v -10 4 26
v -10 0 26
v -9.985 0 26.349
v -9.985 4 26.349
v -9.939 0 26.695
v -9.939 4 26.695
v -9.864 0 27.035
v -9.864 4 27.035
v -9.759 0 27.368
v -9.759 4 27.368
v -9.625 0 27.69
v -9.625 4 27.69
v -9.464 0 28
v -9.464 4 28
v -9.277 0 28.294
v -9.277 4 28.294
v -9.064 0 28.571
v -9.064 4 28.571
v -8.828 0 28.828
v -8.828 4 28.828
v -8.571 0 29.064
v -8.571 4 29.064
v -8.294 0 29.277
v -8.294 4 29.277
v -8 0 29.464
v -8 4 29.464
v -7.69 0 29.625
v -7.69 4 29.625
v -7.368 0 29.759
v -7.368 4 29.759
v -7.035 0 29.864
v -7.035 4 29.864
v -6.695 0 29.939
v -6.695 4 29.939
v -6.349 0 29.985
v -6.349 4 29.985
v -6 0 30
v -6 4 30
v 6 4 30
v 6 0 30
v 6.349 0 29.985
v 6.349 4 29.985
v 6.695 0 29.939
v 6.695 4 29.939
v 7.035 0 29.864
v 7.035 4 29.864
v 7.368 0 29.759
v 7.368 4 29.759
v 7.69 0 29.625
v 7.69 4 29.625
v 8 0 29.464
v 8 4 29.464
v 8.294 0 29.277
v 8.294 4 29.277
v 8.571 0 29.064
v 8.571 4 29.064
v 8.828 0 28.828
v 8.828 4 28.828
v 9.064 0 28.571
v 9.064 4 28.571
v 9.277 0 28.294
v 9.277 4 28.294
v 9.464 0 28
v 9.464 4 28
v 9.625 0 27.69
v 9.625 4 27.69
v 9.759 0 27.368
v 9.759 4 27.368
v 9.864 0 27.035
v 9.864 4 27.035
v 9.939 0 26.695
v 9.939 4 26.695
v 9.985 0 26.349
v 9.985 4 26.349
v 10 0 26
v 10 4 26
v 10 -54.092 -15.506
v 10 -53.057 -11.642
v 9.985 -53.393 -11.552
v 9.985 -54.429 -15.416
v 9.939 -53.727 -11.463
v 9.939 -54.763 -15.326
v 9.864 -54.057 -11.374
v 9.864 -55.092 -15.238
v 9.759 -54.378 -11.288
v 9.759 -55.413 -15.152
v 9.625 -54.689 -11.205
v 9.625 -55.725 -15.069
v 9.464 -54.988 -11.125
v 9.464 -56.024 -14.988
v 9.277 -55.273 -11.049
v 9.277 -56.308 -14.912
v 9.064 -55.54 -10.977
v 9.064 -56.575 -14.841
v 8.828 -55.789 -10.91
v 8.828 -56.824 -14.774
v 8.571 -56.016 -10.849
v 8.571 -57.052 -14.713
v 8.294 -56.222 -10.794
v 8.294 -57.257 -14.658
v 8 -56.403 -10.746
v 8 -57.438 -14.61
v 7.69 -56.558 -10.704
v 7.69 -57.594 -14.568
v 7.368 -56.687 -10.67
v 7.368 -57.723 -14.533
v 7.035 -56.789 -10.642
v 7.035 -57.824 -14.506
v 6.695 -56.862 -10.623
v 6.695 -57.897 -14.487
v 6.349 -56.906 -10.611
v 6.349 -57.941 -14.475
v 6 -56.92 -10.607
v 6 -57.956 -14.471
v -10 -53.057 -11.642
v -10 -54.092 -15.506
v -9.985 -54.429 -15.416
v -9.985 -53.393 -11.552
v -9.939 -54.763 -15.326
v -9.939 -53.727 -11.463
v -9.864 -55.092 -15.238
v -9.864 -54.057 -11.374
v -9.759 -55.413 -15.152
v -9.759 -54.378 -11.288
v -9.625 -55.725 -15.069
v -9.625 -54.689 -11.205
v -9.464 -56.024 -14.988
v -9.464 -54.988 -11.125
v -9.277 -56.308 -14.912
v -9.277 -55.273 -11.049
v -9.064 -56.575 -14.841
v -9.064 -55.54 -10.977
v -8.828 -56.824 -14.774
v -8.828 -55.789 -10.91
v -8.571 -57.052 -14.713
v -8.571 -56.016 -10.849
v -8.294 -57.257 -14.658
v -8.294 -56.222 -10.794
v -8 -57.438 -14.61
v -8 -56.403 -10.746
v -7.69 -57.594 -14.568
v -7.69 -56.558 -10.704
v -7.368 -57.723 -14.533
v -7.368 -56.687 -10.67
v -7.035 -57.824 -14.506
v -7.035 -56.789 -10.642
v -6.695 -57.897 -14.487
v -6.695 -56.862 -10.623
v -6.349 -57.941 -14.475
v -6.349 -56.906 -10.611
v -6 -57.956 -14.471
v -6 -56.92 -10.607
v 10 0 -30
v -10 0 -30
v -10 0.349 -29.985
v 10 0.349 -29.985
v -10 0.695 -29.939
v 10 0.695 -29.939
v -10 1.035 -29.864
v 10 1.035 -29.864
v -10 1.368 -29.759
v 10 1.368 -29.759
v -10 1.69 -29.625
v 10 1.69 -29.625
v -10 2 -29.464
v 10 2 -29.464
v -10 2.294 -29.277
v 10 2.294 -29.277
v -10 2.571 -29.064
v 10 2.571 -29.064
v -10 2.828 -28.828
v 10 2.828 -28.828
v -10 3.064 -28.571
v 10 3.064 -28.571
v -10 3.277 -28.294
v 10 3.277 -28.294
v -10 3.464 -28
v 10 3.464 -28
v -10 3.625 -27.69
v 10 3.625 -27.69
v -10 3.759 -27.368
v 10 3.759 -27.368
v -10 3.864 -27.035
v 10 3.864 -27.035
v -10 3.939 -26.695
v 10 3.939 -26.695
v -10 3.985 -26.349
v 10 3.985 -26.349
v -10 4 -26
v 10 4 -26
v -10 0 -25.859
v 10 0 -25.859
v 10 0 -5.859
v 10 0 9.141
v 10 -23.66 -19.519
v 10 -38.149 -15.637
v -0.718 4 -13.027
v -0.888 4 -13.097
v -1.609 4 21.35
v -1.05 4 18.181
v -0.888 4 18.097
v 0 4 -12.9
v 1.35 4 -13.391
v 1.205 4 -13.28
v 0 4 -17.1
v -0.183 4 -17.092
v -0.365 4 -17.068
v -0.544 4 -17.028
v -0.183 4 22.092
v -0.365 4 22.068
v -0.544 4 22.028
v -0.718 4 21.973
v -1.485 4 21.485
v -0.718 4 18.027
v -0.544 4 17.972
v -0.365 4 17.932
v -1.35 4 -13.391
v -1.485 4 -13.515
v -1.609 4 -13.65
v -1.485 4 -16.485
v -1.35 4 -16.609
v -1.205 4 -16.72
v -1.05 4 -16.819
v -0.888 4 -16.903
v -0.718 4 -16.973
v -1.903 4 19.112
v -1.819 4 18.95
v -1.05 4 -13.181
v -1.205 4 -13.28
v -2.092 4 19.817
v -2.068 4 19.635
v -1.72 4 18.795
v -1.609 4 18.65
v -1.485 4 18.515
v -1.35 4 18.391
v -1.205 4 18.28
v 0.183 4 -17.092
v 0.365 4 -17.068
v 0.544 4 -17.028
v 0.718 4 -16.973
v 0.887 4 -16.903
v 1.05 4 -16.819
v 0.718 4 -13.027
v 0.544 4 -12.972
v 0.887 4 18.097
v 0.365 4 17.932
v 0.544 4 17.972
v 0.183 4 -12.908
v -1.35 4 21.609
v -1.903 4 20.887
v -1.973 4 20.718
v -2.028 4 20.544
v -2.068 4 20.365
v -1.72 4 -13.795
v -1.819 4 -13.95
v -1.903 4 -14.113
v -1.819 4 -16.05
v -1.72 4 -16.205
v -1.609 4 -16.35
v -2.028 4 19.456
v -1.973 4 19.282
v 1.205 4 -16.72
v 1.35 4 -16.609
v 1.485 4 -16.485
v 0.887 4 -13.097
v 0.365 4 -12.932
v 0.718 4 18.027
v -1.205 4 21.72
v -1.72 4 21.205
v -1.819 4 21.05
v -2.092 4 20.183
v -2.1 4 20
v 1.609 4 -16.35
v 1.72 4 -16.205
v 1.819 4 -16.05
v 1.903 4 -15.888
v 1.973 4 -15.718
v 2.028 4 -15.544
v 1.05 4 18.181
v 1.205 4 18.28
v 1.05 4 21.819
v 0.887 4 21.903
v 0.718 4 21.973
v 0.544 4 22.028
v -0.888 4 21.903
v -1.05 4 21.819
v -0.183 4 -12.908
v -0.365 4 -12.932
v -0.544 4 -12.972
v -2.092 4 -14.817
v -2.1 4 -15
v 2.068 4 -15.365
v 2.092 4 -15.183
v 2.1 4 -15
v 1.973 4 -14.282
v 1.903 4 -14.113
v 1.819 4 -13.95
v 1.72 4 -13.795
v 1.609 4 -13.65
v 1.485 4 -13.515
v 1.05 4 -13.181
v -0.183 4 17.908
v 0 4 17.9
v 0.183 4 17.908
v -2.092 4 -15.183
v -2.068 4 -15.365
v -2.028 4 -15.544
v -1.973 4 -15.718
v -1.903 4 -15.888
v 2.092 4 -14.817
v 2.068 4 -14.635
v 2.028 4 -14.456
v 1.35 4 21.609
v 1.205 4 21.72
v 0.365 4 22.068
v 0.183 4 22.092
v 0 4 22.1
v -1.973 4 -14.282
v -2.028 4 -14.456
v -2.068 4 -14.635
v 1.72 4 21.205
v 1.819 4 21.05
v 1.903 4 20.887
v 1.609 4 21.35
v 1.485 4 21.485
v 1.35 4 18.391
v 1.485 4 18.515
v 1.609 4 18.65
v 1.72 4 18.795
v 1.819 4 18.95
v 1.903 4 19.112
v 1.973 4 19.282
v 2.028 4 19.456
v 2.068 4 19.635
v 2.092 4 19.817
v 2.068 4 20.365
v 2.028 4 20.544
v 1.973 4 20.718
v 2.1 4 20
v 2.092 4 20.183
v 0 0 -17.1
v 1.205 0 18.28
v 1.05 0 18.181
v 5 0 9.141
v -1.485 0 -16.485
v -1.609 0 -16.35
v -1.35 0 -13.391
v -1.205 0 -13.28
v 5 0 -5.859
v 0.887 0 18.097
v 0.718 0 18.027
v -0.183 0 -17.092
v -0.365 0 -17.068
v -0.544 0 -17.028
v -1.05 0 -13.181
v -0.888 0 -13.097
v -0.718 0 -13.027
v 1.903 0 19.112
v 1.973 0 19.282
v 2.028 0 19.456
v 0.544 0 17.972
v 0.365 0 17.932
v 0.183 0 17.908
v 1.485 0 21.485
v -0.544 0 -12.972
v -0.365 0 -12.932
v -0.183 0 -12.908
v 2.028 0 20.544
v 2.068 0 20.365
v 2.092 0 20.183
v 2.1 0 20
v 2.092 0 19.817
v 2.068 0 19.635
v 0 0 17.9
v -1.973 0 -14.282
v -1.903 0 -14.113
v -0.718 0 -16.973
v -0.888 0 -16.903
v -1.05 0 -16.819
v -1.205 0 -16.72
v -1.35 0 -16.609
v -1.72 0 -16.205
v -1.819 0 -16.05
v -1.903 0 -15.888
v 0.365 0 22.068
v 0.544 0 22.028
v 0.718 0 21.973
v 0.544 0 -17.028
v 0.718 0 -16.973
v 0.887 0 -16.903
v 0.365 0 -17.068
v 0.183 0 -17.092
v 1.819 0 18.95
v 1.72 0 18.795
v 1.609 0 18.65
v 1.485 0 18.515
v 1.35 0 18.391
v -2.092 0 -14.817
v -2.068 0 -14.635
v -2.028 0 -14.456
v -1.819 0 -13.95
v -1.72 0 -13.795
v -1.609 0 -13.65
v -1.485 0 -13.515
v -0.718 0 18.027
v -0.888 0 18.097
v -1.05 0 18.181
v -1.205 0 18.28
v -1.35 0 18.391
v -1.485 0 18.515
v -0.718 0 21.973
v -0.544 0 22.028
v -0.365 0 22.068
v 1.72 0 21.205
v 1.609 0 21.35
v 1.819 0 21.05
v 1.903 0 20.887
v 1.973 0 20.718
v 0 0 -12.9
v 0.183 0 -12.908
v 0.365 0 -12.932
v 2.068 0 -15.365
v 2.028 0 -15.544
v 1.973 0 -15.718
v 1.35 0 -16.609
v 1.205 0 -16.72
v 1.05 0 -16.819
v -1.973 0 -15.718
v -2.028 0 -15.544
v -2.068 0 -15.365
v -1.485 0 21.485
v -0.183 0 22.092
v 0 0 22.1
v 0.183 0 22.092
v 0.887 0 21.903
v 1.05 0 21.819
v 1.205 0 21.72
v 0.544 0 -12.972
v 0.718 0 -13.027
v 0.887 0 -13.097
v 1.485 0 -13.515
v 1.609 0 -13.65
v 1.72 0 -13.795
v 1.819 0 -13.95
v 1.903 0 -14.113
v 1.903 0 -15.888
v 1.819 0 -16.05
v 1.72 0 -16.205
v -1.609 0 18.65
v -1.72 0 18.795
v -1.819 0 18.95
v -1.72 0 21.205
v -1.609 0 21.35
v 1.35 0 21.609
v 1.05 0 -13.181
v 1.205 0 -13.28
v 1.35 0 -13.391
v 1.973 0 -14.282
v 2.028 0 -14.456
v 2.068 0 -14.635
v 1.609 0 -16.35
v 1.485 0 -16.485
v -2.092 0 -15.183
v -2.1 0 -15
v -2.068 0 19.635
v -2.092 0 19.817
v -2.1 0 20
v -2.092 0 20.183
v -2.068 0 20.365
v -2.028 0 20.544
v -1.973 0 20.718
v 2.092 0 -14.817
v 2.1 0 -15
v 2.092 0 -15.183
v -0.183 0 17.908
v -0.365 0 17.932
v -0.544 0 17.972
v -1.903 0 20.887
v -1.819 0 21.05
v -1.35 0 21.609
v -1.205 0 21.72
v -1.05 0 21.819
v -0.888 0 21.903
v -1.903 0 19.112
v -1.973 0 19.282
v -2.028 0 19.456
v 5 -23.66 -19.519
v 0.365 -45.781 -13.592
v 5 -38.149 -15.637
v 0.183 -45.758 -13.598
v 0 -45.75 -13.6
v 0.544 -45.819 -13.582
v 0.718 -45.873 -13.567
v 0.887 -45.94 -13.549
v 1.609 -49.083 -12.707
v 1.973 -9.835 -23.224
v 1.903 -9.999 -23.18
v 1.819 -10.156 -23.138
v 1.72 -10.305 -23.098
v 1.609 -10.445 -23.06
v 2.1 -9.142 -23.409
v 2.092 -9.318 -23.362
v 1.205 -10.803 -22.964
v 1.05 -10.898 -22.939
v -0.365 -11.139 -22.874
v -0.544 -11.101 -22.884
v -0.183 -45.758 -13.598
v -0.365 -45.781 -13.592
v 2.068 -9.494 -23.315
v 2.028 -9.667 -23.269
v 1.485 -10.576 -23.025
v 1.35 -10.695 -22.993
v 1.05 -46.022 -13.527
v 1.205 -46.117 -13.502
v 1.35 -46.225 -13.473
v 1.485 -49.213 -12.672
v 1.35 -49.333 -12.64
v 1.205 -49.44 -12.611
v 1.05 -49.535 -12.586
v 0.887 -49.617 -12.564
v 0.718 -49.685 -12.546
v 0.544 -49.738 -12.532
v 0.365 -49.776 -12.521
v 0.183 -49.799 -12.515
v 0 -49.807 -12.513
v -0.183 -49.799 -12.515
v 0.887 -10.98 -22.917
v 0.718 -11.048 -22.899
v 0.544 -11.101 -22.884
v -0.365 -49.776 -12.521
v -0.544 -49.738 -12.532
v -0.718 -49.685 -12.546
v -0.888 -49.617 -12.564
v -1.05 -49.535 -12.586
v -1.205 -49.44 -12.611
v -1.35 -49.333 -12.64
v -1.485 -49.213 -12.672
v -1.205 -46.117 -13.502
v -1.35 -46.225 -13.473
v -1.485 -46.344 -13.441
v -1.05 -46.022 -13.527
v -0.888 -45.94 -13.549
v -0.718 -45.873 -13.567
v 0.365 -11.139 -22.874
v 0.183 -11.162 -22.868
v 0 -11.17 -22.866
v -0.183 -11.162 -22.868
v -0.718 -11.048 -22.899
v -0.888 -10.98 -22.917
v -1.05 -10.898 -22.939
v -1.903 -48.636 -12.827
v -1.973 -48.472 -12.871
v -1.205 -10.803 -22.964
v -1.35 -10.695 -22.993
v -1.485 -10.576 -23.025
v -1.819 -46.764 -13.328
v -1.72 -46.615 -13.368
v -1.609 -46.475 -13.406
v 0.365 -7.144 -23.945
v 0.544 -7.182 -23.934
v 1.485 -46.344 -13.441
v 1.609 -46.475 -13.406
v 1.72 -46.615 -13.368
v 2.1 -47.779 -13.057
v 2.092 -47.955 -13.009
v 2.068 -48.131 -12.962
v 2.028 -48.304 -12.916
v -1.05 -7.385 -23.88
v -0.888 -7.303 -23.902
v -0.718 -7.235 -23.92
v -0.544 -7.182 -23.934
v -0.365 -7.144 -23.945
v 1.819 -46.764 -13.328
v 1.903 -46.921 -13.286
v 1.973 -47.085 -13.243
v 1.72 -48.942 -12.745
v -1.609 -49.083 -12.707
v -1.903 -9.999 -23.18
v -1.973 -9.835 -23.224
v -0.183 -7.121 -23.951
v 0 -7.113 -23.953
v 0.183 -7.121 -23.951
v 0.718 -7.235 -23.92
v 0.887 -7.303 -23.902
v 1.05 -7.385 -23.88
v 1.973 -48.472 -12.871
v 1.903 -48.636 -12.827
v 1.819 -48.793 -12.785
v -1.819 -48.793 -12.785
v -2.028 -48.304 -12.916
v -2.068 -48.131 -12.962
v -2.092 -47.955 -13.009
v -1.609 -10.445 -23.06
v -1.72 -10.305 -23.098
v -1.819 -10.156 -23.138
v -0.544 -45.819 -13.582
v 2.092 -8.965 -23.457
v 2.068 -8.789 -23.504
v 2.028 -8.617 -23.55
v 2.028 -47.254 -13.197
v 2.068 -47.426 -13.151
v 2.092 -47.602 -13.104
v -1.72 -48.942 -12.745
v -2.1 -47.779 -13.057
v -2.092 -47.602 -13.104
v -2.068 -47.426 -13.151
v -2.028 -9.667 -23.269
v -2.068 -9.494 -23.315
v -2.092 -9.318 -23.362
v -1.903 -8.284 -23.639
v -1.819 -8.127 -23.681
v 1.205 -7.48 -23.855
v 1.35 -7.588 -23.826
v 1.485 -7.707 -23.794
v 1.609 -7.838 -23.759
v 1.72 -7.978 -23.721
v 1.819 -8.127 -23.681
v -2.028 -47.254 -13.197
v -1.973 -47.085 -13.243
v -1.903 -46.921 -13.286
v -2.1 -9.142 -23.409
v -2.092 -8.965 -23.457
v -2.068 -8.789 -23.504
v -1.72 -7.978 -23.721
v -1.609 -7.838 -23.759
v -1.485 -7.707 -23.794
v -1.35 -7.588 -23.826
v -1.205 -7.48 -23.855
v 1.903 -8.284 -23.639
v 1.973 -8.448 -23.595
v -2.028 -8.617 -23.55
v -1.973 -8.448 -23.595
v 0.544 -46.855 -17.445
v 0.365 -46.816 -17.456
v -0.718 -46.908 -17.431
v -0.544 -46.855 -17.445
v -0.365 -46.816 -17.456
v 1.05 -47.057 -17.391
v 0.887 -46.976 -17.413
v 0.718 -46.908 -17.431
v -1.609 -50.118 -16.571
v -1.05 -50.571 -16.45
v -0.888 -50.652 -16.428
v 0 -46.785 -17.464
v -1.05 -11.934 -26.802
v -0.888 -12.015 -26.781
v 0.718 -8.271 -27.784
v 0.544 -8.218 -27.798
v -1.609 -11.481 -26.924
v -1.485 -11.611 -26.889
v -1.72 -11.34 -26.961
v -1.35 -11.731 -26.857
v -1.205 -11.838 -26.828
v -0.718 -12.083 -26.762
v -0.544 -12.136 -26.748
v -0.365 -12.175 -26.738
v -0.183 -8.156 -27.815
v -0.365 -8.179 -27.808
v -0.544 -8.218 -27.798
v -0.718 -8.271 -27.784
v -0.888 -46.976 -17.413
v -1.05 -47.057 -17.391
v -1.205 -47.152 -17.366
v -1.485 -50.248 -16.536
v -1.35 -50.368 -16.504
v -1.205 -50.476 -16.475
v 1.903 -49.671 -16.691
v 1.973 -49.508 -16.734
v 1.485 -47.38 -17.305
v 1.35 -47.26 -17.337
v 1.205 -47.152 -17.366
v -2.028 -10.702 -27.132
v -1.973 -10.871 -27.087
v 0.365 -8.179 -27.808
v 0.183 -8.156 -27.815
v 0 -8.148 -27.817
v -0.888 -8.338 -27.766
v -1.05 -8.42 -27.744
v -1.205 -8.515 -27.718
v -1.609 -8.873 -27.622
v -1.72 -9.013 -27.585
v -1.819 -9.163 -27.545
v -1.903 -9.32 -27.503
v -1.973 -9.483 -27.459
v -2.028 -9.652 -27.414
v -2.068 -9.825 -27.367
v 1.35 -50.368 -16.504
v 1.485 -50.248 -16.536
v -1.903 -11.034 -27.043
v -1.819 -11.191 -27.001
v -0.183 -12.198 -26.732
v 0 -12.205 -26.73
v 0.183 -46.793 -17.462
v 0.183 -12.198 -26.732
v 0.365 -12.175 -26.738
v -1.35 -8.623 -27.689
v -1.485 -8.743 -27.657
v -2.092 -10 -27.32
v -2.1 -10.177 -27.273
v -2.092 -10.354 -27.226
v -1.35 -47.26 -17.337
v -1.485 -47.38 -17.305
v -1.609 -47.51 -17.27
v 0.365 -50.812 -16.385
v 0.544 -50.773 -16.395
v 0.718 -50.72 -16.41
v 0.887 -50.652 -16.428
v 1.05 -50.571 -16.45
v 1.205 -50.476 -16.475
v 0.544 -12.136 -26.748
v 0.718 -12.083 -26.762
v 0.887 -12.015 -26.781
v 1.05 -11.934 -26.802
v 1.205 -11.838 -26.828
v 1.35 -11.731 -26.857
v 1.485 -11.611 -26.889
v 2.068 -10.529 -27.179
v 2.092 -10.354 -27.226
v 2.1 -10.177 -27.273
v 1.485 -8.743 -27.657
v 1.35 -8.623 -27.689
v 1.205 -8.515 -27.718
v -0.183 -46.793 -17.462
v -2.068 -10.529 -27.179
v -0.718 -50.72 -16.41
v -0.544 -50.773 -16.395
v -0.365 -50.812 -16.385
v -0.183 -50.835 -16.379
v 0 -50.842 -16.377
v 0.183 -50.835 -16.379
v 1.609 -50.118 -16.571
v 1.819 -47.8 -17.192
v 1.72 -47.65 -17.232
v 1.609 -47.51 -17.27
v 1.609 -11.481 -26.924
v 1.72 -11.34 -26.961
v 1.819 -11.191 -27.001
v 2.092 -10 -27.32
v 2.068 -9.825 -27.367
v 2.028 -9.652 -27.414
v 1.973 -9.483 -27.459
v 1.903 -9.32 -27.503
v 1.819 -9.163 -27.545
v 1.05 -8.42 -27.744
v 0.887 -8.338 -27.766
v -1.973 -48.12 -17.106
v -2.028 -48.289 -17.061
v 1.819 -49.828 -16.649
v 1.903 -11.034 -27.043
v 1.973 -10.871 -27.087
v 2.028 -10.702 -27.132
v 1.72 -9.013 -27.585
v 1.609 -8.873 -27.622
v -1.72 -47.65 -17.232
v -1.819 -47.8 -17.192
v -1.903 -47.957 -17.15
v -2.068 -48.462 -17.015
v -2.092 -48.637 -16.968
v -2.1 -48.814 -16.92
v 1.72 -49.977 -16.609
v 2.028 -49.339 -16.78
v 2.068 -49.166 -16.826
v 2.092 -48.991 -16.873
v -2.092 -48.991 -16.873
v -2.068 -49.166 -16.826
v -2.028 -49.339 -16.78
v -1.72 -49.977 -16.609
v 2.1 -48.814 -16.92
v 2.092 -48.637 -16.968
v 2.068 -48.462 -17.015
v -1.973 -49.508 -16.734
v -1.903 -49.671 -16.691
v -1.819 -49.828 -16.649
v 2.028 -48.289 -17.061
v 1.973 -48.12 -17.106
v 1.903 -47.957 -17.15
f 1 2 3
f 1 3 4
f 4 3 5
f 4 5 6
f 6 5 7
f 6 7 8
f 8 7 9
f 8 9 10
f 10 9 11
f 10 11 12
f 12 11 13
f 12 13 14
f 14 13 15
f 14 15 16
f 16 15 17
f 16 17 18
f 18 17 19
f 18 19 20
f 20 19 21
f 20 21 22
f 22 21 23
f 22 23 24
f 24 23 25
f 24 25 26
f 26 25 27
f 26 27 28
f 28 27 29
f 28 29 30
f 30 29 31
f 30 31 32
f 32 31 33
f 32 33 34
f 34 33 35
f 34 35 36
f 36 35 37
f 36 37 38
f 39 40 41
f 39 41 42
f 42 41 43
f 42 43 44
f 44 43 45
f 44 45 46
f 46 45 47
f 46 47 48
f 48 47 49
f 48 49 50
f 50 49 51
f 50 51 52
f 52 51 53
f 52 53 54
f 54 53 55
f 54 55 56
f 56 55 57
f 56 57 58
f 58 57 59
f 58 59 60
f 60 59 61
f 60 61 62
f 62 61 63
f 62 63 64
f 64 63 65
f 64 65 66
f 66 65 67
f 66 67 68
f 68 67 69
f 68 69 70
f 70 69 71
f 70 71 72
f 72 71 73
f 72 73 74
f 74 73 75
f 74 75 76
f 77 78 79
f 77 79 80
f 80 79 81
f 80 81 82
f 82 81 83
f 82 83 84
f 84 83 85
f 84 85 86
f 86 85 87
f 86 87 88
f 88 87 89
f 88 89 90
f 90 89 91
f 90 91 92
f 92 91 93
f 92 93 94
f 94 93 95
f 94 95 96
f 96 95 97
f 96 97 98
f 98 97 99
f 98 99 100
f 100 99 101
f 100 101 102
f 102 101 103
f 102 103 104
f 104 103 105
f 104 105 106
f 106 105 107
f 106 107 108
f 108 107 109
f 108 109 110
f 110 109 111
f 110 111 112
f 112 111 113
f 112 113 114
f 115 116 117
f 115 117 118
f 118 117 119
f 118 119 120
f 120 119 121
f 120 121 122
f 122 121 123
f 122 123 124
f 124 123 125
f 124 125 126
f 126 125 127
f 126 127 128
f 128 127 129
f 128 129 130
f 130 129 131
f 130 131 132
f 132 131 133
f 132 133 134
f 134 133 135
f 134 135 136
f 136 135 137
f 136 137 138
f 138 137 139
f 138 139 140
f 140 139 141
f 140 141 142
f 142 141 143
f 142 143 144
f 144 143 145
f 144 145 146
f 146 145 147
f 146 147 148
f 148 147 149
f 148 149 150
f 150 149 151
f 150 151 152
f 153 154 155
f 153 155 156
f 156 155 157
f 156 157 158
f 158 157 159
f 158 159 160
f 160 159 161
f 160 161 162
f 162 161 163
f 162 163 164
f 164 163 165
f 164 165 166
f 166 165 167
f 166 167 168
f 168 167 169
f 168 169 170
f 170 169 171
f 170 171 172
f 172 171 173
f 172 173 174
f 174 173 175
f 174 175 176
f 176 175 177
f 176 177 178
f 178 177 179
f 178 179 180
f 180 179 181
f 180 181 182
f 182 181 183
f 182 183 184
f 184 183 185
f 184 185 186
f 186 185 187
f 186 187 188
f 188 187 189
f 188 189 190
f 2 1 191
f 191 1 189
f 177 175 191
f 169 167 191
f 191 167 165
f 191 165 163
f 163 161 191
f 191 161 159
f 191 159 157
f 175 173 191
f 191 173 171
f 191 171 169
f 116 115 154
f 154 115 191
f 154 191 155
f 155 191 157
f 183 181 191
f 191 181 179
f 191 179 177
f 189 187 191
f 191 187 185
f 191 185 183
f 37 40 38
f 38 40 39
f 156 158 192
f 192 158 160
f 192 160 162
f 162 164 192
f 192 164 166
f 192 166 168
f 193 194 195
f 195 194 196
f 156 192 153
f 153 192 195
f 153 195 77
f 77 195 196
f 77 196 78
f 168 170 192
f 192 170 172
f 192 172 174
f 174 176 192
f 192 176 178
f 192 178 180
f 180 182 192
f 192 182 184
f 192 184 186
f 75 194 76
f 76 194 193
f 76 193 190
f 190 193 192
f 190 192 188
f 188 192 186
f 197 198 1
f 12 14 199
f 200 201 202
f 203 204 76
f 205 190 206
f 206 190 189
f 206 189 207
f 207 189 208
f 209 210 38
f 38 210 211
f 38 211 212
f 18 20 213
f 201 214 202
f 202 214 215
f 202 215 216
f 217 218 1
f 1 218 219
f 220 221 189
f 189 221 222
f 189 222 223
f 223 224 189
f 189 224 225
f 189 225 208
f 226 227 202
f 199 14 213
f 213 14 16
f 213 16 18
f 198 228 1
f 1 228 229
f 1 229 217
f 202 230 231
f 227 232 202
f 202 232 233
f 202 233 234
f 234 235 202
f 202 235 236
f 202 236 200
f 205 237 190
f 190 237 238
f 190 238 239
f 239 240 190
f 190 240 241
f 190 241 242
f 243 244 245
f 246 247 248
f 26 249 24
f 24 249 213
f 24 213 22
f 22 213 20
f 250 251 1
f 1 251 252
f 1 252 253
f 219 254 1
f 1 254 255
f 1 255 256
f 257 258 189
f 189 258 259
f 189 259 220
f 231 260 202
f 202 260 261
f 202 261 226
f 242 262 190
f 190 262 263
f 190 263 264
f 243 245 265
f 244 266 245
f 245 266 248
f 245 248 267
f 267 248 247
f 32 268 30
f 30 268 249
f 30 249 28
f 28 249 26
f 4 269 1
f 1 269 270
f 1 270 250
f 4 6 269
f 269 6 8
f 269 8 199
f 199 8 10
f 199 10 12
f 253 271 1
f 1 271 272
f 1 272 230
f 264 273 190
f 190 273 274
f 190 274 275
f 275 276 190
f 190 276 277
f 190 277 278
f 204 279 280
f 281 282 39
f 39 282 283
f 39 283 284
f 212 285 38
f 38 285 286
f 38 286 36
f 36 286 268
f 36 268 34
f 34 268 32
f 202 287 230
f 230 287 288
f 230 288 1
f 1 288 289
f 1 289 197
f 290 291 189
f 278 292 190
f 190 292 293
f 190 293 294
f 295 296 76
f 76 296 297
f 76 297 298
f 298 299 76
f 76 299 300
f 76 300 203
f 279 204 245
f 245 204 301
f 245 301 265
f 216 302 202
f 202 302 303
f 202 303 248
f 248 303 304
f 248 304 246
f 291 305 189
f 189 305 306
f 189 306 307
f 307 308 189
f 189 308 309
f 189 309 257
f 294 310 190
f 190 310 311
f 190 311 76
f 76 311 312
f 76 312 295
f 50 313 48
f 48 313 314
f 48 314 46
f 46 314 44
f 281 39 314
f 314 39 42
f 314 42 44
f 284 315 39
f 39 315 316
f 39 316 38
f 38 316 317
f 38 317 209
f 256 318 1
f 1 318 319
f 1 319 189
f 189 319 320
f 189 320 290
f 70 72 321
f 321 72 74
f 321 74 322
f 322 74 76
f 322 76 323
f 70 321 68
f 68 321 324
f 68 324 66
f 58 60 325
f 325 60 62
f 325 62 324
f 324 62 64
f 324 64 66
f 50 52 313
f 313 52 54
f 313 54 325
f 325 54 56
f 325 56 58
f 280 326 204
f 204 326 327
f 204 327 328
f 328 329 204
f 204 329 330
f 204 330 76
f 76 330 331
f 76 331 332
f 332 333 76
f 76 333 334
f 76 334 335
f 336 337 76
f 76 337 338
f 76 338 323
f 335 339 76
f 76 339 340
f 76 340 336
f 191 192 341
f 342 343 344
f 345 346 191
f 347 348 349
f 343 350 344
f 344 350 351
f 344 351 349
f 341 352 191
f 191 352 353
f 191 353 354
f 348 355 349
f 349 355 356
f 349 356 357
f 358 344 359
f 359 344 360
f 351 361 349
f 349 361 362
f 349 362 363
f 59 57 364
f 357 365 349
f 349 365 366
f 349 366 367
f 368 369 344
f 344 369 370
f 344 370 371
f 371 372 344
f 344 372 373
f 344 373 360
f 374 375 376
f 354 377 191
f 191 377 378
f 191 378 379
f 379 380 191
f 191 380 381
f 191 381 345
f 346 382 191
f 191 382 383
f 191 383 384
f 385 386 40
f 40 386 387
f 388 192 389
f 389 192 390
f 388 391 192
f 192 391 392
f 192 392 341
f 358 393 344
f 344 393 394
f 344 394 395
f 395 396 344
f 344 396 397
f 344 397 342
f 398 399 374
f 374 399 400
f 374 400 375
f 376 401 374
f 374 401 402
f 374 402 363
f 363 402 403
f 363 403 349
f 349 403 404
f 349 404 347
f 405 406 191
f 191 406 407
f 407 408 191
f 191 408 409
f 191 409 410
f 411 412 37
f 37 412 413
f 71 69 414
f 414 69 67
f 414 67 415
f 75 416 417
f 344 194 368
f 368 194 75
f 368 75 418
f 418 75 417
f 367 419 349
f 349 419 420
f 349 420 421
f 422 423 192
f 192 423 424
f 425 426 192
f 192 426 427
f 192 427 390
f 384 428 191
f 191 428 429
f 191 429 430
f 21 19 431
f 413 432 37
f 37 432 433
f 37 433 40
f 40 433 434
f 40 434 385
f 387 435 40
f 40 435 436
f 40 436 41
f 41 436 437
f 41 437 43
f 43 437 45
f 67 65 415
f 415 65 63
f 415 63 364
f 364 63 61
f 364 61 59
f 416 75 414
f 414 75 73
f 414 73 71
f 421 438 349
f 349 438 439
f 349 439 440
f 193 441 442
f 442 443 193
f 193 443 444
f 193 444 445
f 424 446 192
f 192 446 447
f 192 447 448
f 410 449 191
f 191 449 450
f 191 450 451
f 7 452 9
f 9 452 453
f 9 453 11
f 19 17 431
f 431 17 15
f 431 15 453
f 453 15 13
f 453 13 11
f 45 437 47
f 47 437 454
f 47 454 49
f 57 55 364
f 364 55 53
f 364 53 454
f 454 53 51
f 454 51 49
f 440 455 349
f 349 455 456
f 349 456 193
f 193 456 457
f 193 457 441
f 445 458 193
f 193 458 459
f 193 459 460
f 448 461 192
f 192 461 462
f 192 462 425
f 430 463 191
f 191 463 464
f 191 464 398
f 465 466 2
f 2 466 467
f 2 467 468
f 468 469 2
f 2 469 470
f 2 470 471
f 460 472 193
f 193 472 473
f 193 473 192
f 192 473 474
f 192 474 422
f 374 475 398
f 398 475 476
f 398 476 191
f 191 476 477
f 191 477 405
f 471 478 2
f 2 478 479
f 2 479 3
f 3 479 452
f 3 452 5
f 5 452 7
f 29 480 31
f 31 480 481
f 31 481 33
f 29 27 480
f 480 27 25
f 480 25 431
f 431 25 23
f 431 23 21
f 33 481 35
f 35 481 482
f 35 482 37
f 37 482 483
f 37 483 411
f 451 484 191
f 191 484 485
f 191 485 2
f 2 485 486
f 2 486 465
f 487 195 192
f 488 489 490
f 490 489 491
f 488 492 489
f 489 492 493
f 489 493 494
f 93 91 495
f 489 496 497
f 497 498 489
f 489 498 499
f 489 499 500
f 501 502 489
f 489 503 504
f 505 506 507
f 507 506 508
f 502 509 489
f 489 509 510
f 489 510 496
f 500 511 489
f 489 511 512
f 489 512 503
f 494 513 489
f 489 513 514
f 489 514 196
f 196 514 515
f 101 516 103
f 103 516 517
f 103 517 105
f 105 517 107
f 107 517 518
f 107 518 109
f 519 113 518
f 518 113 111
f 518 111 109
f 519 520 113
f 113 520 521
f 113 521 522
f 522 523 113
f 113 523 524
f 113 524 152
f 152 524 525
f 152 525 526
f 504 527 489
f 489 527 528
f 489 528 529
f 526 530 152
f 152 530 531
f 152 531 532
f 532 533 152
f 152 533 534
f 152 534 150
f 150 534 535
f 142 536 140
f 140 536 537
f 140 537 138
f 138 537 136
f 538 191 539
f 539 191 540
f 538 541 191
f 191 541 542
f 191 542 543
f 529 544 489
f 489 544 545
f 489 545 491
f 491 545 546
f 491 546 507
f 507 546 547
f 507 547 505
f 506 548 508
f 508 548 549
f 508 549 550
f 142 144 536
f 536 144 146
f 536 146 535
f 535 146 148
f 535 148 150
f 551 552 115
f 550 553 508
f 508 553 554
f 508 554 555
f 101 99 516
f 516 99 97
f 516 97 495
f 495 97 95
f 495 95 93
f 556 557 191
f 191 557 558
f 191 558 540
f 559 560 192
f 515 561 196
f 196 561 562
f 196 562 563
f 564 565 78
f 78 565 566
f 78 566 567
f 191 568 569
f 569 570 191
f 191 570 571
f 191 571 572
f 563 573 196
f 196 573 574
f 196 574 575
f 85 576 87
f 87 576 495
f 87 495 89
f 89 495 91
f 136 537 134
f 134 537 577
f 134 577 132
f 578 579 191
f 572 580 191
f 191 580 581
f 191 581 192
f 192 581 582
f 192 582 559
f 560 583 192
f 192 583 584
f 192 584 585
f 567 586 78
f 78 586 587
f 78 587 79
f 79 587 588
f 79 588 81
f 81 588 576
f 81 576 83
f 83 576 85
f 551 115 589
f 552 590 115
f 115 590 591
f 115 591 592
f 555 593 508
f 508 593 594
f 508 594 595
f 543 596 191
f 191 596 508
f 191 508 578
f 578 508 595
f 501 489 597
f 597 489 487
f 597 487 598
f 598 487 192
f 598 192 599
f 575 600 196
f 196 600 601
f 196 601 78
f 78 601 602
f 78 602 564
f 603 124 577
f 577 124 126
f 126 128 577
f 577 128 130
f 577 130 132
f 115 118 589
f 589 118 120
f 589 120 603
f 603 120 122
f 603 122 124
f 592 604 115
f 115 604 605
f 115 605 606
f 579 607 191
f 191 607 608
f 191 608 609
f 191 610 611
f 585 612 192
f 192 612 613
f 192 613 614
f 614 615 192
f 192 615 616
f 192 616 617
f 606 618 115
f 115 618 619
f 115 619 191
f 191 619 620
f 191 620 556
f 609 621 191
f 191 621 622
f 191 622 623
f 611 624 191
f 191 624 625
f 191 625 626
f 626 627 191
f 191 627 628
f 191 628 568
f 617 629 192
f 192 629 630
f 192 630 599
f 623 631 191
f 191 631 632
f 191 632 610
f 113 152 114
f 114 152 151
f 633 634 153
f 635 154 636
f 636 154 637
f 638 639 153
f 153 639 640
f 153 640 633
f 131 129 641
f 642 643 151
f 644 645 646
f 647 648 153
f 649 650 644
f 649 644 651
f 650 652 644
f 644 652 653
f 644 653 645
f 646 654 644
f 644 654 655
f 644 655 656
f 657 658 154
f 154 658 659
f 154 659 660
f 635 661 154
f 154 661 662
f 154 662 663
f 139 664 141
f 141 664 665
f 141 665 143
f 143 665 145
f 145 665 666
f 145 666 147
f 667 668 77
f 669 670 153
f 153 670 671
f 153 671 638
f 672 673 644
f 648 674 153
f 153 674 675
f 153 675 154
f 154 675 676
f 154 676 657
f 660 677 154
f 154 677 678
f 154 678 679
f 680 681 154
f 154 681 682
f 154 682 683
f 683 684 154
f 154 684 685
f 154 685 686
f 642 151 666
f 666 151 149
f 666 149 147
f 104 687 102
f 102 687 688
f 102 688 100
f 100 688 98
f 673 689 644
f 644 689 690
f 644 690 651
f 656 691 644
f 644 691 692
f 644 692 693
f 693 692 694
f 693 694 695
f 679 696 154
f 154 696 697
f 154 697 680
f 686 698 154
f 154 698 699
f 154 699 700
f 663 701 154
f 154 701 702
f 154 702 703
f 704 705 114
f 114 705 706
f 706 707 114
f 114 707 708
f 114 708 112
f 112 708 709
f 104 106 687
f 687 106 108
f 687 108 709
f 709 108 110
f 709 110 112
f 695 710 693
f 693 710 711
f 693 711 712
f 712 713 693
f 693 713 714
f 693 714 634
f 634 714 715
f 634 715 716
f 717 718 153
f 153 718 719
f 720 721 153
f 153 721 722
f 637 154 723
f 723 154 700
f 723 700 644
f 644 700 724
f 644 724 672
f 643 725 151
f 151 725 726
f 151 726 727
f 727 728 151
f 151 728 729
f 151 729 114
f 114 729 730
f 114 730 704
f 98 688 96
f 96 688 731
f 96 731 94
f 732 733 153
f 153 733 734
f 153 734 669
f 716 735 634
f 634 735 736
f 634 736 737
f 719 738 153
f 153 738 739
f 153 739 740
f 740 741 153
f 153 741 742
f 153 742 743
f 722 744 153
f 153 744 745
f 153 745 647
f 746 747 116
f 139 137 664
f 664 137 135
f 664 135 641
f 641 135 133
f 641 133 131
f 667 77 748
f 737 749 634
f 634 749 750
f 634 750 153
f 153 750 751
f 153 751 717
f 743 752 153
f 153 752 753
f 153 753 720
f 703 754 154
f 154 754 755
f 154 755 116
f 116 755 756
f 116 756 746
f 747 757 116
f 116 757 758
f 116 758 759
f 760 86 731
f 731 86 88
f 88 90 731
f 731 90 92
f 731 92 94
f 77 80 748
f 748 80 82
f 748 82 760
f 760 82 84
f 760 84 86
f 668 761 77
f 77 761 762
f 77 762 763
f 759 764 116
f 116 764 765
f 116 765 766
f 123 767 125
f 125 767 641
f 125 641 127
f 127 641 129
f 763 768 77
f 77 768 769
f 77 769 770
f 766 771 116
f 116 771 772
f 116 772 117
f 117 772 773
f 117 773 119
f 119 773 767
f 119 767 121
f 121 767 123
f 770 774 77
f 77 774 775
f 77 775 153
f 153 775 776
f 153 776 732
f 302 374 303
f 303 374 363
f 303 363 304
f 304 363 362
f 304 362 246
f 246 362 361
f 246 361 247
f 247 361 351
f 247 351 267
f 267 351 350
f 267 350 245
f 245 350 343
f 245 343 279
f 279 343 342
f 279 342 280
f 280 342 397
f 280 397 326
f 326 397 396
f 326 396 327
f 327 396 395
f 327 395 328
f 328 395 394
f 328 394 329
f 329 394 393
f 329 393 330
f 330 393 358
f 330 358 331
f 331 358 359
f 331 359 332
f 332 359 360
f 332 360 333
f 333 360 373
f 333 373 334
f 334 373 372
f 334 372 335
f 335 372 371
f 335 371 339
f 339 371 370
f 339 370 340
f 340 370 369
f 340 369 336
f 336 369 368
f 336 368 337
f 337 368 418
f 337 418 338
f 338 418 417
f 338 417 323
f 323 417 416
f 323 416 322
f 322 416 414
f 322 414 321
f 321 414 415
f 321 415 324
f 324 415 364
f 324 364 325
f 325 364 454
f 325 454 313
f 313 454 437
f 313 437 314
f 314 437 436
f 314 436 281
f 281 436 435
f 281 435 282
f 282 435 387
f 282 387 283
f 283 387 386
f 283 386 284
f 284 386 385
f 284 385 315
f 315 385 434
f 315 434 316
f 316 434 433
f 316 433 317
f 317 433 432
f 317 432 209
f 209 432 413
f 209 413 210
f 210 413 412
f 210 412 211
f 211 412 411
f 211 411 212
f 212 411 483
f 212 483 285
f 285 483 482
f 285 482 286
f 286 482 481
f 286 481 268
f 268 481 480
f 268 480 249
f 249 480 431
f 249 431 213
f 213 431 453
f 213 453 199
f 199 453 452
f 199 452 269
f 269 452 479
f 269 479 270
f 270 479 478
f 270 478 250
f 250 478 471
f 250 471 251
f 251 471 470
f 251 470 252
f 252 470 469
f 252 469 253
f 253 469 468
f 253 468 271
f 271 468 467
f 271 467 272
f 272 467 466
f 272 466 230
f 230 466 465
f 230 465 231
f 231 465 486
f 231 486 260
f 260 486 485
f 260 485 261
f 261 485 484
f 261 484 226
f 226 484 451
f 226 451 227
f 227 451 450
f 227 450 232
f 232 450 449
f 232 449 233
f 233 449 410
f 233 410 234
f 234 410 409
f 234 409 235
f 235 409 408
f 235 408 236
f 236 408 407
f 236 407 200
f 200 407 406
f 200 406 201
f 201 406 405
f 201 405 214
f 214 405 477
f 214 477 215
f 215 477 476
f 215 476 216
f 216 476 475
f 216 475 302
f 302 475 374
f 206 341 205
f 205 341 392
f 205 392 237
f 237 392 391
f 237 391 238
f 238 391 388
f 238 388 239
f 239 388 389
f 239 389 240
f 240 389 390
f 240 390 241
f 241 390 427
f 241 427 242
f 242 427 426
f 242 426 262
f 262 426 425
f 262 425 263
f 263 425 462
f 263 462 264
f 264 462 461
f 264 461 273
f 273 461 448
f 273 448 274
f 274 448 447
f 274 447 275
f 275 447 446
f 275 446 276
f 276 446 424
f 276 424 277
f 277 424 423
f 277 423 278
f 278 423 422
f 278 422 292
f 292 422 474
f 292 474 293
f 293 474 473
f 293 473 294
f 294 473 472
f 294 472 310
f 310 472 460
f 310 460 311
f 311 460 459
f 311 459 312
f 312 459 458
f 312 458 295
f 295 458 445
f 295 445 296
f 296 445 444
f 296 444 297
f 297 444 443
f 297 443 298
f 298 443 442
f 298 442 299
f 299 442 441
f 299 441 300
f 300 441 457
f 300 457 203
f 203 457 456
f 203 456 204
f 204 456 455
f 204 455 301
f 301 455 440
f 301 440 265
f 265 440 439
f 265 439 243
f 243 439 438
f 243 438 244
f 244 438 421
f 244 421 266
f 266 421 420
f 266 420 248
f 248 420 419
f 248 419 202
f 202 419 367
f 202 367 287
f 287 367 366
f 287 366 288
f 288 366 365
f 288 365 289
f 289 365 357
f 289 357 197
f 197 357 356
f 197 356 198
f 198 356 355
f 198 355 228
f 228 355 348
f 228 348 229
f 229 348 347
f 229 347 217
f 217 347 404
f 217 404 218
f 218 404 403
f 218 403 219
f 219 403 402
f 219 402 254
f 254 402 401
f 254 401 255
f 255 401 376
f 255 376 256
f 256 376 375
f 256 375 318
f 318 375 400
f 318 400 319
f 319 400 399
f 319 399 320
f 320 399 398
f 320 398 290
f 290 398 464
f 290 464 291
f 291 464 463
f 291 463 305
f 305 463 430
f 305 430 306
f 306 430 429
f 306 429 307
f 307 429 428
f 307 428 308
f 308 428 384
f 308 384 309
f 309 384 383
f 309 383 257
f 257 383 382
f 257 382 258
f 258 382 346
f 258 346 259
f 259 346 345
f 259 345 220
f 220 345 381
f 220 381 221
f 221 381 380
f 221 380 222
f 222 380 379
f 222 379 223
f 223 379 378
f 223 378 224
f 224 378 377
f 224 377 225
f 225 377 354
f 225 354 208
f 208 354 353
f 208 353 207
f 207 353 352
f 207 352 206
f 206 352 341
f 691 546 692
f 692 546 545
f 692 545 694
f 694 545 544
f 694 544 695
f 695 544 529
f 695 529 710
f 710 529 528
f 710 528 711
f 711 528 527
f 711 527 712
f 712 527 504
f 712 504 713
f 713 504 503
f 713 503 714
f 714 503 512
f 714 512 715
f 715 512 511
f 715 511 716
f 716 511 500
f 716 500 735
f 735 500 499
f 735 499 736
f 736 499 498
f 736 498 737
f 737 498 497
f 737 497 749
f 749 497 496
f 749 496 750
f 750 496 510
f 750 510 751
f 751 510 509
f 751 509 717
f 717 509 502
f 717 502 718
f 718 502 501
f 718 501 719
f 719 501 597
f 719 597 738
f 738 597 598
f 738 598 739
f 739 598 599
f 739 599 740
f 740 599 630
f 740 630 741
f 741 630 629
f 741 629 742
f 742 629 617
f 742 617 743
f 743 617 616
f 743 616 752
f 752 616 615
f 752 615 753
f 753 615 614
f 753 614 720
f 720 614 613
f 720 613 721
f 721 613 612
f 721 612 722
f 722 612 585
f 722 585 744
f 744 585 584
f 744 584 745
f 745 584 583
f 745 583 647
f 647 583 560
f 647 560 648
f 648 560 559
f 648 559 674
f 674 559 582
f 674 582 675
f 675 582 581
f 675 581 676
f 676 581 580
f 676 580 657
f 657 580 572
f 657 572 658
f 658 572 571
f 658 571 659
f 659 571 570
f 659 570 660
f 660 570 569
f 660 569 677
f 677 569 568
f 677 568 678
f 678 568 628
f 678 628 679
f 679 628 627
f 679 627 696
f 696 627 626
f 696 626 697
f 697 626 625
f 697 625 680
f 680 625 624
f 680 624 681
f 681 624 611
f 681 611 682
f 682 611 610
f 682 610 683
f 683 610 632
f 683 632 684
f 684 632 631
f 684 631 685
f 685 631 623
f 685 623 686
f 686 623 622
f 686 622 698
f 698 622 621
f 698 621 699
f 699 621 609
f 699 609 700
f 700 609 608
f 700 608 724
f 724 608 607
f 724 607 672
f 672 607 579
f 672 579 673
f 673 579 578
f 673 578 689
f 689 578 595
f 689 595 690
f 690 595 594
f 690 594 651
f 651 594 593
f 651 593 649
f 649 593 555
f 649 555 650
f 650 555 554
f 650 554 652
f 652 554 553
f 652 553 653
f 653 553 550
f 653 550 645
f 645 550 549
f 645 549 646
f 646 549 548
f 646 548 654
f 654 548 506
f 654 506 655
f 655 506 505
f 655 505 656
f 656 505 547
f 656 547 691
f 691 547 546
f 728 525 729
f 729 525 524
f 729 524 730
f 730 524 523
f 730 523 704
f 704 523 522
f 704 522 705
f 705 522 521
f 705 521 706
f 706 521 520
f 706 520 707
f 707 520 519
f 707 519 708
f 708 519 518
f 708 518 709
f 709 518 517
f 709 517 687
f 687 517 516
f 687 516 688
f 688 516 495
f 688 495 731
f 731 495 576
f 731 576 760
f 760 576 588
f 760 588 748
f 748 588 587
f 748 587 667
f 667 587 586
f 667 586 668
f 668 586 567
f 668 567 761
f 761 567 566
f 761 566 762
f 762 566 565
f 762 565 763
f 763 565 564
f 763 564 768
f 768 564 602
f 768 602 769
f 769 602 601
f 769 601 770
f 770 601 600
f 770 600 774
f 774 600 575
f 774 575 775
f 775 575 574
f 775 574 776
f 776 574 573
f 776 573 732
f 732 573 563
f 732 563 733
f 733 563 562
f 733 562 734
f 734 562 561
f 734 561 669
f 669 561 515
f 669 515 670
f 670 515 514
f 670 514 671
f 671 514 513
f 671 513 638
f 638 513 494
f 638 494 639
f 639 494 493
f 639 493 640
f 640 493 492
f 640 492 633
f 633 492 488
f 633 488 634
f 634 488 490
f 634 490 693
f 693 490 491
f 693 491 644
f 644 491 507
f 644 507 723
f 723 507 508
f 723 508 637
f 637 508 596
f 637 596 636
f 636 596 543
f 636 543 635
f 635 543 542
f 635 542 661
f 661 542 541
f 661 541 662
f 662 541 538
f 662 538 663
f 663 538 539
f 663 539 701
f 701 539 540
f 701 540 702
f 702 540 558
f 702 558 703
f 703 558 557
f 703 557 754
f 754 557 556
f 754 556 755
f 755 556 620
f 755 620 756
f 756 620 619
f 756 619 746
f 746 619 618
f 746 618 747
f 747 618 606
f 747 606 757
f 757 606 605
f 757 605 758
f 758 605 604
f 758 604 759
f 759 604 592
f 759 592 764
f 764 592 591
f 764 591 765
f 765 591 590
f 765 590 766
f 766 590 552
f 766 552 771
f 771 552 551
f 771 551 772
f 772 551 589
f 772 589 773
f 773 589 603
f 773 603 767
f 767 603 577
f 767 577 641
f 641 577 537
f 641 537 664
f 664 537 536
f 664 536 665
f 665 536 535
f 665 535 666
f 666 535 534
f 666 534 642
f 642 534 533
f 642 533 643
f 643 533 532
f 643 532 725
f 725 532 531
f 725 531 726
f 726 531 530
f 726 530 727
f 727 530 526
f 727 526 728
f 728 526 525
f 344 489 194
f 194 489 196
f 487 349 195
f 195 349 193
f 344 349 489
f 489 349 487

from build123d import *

# Parameters (mm, degrees)
SKETCH1_W           = 20
SKETCH1_H           = 60
BOSS_EXTRUDE1_DEPTH = 4
SKETCH6_W           = 20
SKETCH6_H           = 60
BOSS_EXTRUDE3_DEPTH = 4
FILLET6_R           = 4
SKETCH7_R           = 2.1
CUT_EXTRUDE3_DEPTH  = 4
SKETCH8_R           = 2.1
CUT_EXTRUDE4_DEPTH  = 4
FILLET7_R           = 4
FILLET8_R           = 4
FILLET9_R           = 4
FILLET10_R          = 4
BOSS_EXTRUDE5_DEPTH = 5


with BuildPart() as part:
    # Sketch1 → Boss-Extrude1 (new body)
    with BuildSketch(Plane(origin=(0, 0, 0), x_dir=(1, 0, 0), z_dir=(0, 1, 0))):
        Rectangle(SKETCH1_W, SKETCH1_H)
    extrude(amount=BOSS_EXTRUDE1_DEPTH)

    # Sketch6 → Boss-Extrude3 (add)
    with BuildSketch(Plane(origin=(0, -7.5, -27.990381057), x_dir=(-1, 0, 0), z_dir=(0, -0.25881904510251796, -0.9659258262890691))):
        with Locations((0, -22.235428647)):
            Rectangle(SKETCH6_W, SKETCH6_H)
    extrude(amount=-BOSS_EXTRUDE3_DEPTH)

    # Fillet6
    fillet6_edges = [part.edges().sort_by_distance(p)[0] for p in [
        (0, 4, -30),
    ]]
    fillet(fillet6_edges, radius=FILLET6_R - 0.0001)  # a hair under: the kernel refuses the full size

    # Sketch7 → Cut-Extrude3 (cut)
    with BuildSketch(Plane.XZ):
        with Locations(Location((0, 20, 0), (0, 0, 270))):
            Circle(SKETCH7_R)
        with Locations(Location((0, -15, 0), (0, 0, 270))):
            Circle(SKETCH7_R)
    extrude(amount=-CUT_EXTRUDE3_DEPTH, mode=Mode.SUBTRACT)

    # Sketch8 → Cut-Extrude4 (cut)
    with BuildSketch(Plane(origin=(0, -6.46472382, -24.126677752), x_dir=(1, 0, 0), z_dir=(0, 0.25881904510251796, 0.9659258262890691))):
        with Locations(Location((0, -2.771327032, 0), (0, 0, 270))):
            Circle(SKETCH8_R)
        with Locations(Location((0, -42.771327032, 0), (0, 0, 270))):
            Circle(SKETCH8_R)
    extrude(amount=-CUT_EXTRUDE4_DEPTH, mode=Mode.SUBTRACT)

    # Fillet7
    fillet7_edges = [part.edges().sort_by_distance(p)[0] for p in [
        (-10, -57.437911487, -12.539005641),
    ]]
    fillet(fillet7_edges, radius=FILLET7_R)

    # Fillet8
    fillet8_edges = [part.edges().sort_by_distance(p)[0] for p in [
        (10, -57.437911487, -12.539005641),
    ]]
    fillet(fillet8_edges, radius=FILLET8_R)

    # Fillet9
    fillet9_edges = [part.edges().sort_by_distance(p)[0] for p in [
        (10, 2, 30),
    ]]
    fillet(fillet9_edges, radius=FILLET9_R)

    # Fillet10
    fillet10_edges = [part.edges().sort_by_distance(p)[0] for p in [
        (-10, 2, 30),
    ]]
    fillet(fillet10_edges, radius=FILLET10_R)

    # Brace → Boss-Extrude5 (add)
    with BuildSketch(Plane(origin=(10, 0, 0), x_dir=(0, 0, -1), z_dir=(1, 0, 0))):
        Polygon((15.63686364, -38.149141432), (-9.141104722, 0), (5.858895278, 0), (19.519149316, -23.660254038), align=None)
    extrude(amount=-BOSS_EXTRUDE5_DEPTH)


solid = part.part
